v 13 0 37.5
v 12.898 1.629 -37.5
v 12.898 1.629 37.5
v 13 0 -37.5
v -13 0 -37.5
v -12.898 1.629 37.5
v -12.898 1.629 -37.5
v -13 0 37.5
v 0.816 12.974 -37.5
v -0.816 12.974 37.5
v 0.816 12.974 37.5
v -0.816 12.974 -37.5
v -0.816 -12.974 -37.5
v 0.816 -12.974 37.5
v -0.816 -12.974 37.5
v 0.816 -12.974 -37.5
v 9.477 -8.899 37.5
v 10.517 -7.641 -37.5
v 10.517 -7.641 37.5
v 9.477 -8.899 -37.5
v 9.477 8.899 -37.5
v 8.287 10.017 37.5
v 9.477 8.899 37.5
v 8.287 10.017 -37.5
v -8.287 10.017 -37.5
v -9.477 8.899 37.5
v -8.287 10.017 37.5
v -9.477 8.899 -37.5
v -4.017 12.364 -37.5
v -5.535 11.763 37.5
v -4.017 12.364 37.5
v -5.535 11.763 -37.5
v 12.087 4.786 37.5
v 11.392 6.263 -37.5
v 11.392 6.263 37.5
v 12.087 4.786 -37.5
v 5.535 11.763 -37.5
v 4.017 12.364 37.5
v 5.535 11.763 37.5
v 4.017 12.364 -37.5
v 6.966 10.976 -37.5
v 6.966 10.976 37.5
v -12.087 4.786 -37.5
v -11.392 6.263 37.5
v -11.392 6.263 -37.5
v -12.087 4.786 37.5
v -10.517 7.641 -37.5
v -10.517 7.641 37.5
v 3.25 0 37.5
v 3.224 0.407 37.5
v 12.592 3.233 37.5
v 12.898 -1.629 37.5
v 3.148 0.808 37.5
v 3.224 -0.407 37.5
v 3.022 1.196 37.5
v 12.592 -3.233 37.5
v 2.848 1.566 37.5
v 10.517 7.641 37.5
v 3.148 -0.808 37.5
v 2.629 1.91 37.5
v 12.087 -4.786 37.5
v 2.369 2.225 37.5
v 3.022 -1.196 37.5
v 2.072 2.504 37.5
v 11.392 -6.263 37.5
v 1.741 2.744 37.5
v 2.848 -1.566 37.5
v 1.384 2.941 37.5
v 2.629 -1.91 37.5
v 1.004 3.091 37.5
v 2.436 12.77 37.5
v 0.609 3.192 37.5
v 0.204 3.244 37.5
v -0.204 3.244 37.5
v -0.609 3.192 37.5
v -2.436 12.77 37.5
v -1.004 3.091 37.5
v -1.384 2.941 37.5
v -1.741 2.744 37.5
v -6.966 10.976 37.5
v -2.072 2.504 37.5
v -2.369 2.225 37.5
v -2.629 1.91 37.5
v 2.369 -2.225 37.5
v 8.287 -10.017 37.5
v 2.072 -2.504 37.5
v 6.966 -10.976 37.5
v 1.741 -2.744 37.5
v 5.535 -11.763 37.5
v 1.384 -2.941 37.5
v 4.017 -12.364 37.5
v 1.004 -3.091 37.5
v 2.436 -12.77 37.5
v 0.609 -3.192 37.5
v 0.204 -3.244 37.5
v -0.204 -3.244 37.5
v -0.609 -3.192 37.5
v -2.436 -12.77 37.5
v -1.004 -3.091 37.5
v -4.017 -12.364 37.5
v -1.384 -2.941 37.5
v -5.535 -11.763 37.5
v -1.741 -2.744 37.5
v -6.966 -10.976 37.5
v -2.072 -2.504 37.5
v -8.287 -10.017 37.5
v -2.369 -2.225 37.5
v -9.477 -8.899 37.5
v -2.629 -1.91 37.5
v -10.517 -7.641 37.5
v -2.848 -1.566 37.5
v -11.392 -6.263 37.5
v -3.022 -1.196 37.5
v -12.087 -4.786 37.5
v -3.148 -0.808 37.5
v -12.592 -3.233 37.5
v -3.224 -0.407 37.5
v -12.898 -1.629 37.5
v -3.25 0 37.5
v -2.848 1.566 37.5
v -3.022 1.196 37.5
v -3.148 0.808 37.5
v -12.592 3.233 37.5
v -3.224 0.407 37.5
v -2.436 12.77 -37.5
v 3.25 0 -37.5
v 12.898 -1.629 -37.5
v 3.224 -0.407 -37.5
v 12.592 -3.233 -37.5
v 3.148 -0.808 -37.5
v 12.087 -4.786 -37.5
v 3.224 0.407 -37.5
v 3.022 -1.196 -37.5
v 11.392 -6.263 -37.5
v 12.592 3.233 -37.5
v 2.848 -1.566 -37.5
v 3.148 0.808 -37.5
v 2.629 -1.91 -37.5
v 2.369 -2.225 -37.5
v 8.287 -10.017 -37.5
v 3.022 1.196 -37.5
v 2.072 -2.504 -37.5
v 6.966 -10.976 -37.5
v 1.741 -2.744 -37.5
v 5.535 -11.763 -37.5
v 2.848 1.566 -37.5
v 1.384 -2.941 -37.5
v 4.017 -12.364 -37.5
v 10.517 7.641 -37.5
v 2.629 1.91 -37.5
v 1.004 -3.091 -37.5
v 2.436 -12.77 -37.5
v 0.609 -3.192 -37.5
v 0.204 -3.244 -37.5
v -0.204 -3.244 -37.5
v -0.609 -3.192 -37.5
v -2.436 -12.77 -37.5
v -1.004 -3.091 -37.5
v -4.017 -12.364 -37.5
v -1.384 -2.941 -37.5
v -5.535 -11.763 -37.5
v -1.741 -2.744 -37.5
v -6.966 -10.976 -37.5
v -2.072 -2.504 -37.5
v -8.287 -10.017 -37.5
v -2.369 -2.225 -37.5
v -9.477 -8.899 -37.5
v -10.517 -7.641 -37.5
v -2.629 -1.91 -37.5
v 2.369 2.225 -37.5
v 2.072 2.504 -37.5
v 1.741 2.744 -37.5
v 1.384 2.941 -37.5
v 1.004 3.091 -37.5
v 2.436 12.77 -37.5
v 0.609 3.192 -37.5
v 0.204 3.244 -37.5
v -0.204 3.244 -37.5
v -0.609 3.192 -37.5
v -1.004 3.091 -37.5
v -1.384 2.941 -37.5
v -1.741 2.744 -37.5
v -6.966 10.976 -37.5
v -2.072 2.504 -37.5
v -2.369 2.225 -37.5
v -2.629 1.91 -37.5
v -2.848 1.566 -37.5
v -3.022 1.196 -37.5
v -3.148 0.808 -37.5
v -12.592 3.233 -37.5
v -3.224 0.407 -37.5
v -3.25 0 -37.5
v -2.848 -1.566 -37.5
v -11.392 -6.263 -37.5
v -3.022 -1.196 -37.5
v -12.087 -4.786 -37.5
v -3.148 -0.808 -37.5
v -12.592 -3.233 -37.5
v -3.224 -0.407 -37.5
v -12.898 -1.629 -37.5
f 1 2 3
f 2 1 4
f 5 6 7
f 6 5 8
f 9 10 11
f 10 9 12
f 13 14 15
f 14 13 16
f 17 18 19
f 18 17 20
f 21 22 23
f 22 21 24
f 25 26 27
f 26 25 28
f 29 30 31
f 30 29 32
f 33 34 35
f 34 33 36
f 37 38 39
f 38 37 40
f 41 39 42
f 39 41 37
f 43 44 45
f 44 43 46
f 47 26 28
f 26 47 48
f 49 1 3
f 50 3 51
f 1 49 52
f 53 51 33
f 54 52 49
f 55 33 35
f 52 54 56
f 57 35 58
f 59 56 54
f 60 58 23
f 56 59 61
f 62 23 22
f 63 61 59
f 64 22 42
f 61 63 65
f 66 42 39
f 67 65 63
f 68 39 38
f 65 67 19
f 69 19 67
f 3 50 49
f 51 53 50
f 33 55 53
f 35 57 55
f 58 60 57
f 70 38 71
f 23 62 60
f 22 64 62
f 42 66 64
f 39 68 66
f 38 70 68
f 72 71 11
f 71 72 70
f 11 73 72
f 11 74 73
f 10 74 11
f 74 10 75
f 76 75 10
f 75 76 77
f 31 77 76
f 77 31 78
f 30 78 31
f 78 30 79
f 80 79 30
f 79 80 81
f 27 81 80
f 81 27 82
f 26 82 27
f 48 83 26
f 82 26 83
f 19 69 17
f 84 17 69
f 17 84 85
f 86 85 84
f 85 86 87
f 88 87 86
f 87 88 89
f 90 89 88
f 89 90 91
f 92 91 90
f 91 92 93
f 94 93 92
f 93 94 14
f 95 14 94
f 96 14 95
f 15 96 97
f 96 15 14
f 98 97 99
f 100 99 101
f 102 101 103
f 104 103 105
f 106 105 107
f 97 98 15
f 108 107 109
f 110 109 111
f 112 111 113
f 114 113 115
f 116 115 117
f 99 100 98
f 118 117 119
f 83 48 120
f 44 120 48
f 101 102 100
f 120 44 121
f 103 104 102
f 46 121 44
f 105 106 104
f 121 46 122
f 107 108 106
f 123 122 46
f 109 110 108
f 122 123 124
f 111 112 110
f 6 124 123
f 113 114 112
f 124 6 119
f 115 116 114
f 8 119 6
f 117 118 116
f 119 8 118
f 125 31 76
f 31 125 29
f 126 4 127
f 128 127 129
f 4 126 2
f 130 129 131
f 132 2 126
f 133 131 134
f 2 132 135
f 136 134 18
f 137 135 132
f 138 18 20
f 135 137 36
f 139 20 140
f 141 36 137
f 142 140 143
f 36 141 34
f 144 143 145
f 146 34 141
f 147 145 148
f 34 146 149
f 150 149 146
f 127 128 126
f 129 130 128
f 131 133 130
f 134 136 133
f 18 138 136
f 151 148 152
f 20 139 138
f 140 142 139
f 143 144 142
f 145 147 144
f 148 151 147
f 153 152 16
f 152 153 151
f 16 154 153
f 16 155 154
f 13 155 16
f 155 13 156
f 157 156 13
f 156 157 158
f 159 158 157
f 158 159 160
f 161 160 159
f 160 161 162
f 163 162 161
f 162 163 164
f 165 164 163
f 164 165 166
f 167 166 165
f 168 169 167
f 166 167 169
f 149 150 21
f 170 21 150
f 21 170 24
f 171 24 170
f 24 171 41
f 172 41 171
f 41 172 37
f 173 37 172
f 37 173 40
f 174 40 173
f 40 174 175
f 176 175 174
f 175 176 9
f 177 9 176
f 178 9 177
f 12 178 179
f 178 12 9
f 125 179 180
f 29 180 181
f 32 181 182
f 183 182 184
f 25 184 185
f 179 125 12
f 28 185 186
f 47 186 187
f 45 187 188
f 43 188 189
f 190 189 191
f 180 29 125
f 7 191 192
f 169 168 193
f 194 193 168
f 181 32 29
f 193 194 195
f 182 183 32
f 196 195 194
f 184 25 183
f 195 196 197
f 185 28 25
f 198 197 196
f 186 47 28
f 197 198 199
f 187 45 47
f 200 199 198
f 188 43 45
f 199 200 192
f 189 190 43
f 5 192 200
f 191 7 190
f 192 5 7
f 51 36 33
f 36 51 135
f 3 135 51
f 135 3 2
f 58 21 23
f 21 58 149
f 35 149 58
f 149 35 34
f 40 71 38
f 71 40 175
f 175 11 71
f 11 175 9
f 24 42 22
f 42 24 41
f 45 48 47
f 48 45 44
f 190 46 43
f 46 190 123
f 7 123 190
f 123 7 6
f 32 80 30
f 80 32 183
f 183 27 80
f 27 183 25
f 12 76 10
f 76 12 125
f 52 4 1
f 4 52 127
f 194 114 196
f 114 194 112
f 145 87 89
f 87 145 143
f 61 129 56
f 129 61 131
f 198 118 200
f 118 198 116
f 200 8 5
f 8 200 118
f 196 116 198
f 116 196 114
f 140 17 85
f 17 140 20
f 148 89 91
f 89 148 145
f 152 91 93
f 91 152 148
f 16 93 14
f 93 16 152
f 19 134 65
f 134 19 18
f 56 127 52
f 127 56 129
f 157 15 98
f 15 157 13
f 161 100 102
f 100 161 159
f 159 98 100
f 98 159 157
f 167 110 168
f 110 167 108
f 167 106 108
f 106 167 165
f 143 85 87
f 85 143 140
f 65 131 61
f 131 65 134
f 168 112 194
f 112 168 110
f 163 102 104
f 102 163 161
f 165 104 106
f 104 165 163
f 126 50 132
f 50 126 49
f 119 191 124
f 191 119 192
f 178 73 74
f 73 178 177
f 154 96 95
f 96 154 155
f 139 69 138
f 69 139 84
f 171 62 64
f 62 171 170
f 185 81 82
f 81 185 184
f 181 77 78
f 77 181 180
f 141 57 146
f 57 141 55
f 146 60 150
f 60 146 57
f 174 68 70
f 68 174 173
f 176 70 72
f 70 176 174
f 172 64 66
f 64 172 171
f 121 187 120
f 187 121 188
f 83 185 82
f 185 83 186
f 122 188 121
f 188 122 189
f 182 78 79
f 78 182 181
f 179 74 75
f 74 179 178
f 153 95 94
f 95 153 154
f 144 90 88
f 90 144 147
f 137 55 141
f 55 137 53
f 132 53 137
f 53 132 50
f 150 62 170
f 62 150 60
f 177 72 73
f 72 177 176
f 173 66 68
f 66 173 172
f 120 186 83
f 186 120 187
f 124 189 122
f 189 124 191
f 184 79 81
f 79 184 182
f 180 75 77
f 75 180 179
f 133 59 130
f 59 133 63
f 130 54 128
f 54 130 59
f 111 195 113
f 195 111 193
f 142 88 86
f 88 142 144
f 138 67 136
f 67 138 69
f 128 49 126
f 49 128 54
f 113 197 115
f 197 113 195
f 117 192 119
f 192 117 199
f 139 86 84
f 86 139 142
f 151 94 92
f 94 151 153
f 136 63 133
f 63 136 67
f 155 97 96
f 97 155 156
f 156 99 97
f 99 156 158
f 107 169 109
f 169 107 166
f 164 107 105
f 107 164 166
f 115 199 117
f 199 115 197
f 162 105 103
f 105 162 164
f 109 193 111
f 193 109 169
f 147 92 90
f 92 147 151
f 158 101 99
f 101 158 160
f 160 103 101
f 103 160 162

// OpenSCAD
$fn = 50;


difference() {
	union() {
		translate(v = [0, 0, -37.5000000000]) {
			cylinder(h = 75, r = 13.0000000000);
		}
	}
	union() {
		translate(v = [0, 0, -100.0000000000]) {
			cylinder(h = 200, r = 3.2500000000);
		}
	}
}
